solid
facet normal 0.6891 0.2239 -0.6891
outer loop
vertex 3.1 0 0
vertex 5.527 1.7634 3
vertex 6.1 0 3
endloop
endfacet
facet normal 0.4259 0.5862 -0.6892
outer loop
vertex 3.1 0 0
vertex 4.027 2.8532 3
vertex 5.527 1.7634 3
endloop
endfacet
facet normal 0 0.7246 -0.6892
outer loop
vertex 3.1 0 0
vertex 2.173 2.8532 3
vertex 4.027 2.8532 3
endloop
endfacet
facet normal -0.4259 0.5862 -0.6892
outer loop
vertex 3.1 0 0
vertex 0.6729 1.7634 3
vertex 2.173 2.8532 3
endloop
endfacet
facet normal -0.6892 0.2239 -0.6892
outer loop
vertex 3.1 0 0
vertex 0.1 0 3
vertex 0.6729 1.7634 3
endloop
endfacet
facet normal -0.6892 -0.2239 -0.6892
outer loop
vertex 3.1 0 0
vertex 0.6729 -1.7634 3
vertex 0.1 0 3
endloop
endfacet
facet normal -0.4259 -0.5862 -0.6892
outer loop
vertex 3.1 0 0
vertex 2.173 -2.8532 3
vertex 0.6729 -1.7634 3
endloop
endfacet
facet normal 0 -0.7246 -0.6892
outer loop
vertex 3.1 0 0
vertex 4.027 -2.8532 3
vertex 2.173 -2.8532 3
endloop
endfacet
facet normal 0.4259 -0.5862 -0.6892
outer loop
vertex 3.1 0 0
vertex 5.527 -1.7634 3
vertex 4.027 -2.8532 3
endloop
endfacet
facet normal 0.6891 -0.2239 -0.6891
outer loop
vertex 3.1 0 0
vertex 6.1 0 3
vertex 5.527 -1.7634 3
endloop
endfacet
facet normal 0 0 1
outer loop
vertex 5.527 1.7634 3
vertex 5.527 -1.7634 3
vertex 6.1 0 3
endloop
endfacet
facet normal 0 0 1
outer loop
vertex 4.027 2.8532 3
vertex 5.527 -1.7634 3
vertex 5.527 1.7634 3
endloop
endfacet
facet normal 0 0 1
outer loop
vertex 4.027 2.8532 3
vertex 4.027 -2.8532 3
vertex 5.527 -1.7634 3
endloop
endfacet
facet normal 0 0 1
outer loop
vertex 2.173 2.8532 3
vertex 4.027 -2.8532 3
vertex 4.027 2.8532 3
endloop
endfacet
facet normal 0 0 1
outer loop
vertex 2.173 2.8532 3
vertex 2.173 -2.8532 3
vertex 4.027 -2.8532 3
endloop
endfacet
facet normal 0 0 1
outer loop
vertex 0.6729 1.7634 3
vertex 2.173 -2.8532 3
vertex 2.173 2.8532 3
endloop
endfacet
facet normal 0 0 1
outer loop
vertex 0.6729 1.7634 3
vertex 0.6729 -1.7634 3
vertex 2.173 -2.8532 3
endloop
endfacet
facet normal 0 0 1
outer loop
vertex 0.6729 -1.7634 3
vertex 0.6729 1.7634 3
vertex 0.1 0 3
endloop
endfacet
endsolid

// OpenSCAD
// cylinder(h=3, r1=3, r2=0);

translate([3.1, 0, 0]) {     cylinder(h=3, r1=0, r2=3);
}
